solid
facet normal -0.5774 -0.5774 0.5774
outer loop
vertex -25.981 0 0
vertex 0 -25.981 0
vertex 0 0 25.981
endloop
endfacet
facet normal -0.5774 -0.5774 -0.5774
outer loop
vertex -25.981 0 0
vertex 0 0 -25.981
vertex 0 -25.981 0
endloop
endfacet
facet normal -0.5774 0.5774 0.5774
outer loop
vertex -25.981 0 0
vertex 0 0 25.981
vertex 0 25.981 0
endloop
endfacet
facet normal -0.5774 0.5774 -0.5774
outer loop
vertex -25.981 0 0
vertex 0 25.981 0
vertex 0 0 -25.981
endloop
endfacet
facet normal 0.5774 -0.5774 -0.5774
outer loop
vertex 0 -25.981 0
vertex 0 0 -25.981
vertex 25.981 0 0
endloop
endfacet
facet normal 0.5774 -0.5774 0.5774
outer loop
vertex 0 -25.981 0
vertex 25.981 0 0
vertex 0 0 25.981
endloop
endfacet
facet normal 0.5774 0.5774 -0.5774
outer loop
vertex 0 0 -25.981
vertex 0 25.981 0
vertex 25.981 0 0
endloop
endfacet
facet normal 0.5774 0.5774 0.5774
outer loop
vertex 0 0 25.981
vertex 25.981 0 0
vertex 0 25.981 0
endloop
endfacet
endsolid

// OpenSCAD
function z2miller(plane)=
let(p=plane/sqrt(plane*plane))
[0,acos(p[2]),atan2(p[1],p[0])];





intersection(){

t = 30;
rotate(z2miller([1,1,1]))
cylinder(30,100,100,center=true);

rotate(z2miller([1,1,-1]))
cylinder(30,100,100,center=true);

rotate(z2miller([1,-1,1]))
cylinder(30,100,100,center=true);
    

rotate(z2miller([-1,1,1]))
cylinder(30,100,100,center=true);
    
}
